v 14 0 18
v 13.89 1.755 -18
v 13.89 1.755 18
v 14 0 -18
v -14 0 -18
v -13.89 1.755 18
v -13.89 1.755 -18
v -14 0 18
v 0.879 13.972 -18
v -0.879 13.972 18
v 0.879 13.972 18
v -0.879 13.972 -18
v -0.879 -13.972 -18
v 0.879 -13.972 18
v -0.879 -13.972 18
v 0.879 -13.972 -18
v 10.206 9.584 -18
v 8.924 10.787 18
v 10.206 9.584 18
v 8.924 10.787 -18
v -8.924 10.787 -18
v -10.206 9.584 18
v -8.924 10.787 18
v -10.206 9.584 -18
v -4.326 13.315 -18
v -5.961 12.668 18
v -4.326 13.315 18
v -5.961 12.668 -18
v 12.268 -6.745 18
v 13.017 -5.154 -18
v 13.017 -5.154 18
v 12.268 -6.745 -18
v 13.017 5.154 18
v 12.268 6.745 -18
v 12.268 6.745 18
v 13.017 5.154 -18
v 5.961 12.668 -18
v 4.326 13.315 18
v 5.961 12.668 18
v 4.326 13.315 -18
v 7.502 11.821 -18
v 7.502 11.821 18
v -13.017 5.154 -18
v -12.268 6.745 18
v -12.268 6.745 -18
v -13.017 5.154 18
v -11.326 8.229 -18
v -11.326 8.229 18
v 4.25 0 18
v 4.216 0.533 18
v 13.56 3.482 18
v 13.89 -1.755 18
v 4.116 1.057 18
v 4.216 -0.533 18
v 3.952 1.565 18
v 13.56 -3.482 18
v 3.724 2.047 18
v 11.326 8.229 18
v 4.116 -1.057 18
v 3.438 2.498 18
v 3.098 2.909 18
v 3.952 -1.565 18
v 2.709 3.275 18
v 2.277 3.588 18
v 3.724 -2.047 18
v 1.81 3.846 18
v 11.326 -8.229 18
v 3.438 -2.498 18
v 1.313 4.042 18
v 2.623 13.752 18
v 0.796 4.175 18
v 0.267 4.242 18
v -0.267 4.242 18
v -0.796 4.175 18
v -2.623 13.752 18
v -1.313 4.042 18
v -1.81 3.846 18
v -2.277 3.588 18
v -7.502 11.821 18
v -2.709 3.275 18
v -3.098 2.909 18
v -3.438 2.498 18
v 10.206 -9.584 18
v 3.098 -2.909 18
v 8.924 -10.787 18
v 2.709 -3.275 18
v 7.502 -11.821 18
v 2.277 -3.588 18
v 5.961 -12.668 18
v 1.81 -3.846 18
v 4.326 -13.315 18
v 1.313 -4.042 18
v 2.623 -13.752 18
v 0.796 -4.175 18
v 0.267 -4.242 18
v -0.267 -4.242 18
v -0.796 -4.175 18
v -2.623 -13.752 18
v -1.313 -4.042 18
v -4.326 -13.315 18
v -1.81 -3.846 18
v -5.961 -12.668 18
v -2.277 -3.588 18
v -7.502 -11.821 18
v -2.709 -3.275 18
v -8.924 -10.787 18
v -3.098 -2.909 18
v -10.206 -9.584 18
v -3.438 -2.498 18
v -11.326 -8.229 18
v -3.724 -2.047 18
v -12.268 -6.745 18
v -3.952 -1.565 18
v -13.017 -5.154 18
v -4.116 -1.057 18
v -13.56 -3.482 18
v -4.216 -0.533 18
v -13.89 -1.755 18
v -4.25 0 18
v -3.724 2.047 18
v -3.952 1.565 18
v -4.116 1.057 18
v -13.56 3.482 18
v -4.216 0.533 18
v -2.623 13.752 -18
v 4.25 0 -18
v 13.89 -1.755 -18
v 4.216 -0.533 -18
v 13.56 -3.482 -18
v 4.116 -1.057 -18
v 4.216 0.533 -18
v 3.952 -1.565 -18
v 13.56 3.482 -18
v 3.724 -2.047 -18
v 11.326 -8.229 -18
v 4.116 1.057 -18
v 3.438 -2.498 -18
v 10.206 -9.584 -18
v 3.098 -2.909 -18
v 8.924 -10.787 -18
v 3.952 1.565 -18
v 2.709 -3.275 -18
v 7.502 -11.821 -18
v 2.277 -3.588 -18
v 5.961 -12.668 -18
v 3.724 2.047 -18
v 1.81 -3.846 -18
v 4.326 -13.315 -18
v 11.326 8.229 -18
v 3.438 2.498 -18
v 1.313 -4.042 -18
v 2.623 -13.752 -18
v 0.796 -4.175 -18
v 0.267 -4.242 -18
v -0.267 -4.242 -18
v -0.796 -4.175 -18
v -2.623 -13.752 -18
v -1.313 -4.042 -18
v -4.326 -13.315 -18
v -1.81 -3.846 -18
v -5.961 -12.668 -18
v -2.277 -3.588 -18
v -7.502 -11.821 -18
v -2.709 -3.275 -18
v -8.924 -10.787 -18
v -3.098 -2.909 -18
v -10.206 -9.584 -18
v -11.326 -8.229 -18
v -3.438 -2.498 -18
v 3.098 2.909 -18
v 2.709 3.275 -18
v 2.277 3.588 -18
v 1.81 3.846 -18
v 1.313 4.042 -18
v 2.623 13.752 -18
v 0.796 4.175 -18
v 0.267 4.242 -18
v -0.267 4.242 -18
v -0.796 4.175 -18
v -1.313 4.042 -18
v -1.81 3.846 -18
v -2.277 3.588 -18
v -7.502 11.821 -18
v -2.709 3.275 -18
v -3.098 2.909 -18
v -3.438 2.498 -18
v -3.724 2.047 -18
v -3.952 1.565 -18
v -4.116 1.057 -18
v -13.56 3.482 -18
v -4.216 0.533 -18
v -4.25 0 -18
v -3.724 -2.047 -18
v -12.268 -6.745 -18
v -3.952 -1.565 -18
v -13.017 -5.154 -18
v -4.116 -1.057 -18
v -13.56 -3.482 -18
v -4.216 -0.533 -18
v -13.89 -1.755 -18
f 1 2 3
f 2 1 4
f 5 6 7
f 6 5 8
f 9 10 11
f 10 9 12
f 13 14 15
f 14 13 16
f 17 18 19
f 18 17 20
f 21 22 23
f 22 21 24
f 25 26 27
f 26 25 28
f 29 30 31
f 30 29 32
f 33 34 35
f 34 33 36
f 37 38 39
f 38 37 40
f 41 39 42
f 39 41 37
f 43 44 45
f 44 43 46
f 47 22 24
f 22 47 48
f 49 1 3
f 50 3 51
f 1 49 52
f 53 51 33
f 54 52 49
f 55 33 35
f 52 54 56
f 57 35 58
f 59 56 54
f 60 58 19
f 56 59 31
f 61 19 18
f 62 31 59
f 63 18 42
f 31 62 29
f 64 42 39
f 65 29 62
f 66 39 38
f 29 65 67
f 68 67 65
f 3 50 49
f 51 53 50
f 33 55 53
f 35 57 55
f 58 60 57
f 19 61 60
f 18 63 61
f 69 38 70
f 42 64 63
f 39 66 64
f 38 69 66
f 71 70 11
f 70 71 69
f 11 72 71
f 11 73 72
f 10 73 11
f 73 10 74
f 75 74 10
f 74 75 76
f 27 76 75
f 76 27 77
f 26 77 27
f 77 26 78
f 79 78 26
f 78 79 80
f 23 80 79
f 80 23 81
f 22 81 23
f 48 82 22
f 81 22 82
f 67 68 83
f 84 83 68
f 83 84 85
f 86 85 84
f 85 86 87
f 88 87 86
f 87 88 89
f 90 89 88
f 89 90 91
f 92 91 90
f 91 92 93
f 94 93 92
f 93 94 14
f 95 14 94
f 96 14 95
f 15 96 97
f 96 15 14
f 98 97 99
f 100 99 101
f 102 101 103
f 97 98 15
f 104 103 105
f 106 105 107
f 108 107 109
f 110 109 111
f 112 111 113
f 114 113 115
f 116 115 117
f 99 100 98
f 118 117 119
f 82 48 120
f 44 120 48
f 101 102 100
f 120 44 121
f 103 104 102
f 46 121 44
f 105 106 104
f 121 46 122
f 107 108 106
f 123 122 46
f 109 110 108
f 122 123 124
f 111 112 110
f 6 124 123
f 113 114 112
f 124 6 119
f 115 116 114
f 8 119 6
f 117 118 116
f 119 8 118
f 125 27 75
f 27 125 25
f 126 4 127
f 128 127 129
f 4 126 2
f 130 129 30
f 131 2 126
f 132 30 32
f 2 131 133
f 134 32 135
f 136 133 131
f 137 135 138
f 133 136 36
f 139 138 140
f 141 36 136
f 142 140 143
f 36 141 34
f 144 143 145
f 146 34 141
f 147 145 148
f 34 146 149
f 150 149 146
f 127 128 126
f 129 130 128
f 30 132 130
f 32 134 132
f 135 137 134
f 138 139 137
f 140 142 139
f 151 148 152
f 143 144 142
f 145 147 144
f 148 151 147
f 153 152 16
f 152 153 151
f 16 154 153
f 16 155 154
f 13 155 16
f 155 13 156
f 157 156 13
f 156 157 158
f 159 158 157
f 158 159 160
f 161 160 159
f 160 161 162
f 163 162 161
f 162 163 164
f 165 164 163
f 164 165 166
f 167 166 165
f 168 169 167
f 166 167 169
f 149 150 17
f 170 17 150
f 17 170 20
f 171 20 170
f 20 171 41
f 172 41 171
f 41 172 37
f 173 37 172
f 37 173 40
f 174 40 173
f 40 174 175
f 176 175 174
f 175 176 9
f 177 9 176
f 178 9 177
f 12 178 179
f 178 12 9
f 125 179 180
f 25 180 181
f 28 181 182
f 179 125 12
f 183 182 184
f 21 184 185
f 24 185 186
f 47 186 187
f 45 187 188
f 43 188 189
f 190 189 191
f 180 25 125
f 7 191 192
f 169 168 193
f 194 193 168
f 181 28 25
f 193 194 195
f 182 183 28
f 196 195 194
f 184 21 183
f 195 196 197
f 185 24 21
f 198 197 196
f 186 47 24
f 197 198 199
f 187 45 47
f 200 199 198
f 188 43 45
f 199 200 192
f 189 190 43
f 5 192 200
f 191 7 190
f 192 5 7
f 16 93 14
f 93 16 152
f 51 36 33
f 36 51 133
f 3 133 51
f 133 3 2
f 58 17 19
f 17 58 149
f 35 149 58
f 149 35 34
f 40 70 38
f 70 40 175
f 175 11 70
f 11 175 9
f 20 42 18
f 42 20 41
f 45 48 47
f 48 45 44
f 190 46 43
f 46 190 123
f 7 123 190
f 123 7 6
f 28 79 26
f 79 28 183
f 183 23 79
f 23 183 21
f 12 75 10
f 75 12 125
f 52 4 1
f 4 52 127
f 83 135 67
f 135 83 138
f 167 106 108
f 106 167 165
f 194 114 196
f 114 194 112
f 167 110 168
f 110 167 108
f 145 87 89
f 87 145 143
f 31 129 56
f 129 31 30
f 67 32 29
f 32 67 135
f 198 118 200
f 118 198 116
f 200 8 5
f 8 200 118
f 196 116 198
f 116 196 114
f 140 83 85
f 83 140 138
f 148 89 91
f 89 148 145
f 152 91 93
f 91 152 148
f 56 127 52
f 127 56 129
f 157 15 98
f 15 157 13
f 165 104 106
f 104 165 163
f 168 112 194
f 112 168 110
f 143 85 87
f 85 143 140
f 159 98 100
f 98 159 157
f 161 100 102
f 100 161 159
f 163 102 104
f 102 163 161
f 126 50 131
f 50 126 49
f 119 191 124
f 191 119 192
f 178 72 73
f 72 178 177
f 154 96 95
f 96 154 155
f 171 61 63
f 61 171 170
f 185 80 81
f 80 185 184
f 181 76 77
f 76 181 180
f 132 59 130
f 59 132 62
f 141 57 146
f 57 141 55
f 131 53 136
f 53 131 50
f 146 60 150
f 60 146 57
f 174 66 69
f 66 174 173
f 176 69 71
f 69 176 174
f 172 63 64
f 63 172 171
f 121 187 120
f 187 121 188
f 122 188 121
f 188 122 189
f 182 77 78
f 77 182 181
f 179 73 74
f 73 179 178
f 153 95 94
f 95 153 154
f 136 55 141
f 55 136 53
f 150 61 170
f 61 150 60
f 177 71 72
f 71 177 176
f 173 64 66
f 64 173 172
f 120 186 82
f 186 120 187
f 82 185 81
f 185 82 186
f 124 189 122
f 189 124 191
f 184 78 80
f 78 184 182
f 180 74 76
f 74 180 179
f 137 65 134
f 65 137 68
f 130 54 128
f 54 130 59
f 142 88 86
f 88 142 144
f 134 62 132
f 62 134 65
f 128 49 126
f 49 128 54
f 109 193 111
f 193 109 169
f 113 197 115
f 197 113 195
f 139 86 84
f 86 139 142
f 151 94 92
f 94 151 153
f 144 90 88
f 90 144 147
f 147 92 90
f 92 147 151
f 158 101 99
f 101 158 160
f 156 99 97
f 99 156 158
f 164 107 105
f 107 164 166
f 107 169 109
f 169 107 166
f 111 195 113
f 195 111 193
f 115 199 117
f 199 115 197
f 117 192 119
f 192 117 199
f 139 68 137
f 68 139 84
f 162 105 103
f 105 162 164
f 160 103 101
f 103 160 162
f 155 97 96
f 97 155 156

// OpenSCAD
$fn = 50;


difference() {
	union() {
		translate(v = [0, 0, -18.0000000000]) {
			cylinder(h = 36, r = 14.0000000000);
		}
	}
	union() {
		translate(v = [0, 0, -100.0000000000]) {
			cylinder(h = 200, r = 4.2500000000);
		}
	}
}
